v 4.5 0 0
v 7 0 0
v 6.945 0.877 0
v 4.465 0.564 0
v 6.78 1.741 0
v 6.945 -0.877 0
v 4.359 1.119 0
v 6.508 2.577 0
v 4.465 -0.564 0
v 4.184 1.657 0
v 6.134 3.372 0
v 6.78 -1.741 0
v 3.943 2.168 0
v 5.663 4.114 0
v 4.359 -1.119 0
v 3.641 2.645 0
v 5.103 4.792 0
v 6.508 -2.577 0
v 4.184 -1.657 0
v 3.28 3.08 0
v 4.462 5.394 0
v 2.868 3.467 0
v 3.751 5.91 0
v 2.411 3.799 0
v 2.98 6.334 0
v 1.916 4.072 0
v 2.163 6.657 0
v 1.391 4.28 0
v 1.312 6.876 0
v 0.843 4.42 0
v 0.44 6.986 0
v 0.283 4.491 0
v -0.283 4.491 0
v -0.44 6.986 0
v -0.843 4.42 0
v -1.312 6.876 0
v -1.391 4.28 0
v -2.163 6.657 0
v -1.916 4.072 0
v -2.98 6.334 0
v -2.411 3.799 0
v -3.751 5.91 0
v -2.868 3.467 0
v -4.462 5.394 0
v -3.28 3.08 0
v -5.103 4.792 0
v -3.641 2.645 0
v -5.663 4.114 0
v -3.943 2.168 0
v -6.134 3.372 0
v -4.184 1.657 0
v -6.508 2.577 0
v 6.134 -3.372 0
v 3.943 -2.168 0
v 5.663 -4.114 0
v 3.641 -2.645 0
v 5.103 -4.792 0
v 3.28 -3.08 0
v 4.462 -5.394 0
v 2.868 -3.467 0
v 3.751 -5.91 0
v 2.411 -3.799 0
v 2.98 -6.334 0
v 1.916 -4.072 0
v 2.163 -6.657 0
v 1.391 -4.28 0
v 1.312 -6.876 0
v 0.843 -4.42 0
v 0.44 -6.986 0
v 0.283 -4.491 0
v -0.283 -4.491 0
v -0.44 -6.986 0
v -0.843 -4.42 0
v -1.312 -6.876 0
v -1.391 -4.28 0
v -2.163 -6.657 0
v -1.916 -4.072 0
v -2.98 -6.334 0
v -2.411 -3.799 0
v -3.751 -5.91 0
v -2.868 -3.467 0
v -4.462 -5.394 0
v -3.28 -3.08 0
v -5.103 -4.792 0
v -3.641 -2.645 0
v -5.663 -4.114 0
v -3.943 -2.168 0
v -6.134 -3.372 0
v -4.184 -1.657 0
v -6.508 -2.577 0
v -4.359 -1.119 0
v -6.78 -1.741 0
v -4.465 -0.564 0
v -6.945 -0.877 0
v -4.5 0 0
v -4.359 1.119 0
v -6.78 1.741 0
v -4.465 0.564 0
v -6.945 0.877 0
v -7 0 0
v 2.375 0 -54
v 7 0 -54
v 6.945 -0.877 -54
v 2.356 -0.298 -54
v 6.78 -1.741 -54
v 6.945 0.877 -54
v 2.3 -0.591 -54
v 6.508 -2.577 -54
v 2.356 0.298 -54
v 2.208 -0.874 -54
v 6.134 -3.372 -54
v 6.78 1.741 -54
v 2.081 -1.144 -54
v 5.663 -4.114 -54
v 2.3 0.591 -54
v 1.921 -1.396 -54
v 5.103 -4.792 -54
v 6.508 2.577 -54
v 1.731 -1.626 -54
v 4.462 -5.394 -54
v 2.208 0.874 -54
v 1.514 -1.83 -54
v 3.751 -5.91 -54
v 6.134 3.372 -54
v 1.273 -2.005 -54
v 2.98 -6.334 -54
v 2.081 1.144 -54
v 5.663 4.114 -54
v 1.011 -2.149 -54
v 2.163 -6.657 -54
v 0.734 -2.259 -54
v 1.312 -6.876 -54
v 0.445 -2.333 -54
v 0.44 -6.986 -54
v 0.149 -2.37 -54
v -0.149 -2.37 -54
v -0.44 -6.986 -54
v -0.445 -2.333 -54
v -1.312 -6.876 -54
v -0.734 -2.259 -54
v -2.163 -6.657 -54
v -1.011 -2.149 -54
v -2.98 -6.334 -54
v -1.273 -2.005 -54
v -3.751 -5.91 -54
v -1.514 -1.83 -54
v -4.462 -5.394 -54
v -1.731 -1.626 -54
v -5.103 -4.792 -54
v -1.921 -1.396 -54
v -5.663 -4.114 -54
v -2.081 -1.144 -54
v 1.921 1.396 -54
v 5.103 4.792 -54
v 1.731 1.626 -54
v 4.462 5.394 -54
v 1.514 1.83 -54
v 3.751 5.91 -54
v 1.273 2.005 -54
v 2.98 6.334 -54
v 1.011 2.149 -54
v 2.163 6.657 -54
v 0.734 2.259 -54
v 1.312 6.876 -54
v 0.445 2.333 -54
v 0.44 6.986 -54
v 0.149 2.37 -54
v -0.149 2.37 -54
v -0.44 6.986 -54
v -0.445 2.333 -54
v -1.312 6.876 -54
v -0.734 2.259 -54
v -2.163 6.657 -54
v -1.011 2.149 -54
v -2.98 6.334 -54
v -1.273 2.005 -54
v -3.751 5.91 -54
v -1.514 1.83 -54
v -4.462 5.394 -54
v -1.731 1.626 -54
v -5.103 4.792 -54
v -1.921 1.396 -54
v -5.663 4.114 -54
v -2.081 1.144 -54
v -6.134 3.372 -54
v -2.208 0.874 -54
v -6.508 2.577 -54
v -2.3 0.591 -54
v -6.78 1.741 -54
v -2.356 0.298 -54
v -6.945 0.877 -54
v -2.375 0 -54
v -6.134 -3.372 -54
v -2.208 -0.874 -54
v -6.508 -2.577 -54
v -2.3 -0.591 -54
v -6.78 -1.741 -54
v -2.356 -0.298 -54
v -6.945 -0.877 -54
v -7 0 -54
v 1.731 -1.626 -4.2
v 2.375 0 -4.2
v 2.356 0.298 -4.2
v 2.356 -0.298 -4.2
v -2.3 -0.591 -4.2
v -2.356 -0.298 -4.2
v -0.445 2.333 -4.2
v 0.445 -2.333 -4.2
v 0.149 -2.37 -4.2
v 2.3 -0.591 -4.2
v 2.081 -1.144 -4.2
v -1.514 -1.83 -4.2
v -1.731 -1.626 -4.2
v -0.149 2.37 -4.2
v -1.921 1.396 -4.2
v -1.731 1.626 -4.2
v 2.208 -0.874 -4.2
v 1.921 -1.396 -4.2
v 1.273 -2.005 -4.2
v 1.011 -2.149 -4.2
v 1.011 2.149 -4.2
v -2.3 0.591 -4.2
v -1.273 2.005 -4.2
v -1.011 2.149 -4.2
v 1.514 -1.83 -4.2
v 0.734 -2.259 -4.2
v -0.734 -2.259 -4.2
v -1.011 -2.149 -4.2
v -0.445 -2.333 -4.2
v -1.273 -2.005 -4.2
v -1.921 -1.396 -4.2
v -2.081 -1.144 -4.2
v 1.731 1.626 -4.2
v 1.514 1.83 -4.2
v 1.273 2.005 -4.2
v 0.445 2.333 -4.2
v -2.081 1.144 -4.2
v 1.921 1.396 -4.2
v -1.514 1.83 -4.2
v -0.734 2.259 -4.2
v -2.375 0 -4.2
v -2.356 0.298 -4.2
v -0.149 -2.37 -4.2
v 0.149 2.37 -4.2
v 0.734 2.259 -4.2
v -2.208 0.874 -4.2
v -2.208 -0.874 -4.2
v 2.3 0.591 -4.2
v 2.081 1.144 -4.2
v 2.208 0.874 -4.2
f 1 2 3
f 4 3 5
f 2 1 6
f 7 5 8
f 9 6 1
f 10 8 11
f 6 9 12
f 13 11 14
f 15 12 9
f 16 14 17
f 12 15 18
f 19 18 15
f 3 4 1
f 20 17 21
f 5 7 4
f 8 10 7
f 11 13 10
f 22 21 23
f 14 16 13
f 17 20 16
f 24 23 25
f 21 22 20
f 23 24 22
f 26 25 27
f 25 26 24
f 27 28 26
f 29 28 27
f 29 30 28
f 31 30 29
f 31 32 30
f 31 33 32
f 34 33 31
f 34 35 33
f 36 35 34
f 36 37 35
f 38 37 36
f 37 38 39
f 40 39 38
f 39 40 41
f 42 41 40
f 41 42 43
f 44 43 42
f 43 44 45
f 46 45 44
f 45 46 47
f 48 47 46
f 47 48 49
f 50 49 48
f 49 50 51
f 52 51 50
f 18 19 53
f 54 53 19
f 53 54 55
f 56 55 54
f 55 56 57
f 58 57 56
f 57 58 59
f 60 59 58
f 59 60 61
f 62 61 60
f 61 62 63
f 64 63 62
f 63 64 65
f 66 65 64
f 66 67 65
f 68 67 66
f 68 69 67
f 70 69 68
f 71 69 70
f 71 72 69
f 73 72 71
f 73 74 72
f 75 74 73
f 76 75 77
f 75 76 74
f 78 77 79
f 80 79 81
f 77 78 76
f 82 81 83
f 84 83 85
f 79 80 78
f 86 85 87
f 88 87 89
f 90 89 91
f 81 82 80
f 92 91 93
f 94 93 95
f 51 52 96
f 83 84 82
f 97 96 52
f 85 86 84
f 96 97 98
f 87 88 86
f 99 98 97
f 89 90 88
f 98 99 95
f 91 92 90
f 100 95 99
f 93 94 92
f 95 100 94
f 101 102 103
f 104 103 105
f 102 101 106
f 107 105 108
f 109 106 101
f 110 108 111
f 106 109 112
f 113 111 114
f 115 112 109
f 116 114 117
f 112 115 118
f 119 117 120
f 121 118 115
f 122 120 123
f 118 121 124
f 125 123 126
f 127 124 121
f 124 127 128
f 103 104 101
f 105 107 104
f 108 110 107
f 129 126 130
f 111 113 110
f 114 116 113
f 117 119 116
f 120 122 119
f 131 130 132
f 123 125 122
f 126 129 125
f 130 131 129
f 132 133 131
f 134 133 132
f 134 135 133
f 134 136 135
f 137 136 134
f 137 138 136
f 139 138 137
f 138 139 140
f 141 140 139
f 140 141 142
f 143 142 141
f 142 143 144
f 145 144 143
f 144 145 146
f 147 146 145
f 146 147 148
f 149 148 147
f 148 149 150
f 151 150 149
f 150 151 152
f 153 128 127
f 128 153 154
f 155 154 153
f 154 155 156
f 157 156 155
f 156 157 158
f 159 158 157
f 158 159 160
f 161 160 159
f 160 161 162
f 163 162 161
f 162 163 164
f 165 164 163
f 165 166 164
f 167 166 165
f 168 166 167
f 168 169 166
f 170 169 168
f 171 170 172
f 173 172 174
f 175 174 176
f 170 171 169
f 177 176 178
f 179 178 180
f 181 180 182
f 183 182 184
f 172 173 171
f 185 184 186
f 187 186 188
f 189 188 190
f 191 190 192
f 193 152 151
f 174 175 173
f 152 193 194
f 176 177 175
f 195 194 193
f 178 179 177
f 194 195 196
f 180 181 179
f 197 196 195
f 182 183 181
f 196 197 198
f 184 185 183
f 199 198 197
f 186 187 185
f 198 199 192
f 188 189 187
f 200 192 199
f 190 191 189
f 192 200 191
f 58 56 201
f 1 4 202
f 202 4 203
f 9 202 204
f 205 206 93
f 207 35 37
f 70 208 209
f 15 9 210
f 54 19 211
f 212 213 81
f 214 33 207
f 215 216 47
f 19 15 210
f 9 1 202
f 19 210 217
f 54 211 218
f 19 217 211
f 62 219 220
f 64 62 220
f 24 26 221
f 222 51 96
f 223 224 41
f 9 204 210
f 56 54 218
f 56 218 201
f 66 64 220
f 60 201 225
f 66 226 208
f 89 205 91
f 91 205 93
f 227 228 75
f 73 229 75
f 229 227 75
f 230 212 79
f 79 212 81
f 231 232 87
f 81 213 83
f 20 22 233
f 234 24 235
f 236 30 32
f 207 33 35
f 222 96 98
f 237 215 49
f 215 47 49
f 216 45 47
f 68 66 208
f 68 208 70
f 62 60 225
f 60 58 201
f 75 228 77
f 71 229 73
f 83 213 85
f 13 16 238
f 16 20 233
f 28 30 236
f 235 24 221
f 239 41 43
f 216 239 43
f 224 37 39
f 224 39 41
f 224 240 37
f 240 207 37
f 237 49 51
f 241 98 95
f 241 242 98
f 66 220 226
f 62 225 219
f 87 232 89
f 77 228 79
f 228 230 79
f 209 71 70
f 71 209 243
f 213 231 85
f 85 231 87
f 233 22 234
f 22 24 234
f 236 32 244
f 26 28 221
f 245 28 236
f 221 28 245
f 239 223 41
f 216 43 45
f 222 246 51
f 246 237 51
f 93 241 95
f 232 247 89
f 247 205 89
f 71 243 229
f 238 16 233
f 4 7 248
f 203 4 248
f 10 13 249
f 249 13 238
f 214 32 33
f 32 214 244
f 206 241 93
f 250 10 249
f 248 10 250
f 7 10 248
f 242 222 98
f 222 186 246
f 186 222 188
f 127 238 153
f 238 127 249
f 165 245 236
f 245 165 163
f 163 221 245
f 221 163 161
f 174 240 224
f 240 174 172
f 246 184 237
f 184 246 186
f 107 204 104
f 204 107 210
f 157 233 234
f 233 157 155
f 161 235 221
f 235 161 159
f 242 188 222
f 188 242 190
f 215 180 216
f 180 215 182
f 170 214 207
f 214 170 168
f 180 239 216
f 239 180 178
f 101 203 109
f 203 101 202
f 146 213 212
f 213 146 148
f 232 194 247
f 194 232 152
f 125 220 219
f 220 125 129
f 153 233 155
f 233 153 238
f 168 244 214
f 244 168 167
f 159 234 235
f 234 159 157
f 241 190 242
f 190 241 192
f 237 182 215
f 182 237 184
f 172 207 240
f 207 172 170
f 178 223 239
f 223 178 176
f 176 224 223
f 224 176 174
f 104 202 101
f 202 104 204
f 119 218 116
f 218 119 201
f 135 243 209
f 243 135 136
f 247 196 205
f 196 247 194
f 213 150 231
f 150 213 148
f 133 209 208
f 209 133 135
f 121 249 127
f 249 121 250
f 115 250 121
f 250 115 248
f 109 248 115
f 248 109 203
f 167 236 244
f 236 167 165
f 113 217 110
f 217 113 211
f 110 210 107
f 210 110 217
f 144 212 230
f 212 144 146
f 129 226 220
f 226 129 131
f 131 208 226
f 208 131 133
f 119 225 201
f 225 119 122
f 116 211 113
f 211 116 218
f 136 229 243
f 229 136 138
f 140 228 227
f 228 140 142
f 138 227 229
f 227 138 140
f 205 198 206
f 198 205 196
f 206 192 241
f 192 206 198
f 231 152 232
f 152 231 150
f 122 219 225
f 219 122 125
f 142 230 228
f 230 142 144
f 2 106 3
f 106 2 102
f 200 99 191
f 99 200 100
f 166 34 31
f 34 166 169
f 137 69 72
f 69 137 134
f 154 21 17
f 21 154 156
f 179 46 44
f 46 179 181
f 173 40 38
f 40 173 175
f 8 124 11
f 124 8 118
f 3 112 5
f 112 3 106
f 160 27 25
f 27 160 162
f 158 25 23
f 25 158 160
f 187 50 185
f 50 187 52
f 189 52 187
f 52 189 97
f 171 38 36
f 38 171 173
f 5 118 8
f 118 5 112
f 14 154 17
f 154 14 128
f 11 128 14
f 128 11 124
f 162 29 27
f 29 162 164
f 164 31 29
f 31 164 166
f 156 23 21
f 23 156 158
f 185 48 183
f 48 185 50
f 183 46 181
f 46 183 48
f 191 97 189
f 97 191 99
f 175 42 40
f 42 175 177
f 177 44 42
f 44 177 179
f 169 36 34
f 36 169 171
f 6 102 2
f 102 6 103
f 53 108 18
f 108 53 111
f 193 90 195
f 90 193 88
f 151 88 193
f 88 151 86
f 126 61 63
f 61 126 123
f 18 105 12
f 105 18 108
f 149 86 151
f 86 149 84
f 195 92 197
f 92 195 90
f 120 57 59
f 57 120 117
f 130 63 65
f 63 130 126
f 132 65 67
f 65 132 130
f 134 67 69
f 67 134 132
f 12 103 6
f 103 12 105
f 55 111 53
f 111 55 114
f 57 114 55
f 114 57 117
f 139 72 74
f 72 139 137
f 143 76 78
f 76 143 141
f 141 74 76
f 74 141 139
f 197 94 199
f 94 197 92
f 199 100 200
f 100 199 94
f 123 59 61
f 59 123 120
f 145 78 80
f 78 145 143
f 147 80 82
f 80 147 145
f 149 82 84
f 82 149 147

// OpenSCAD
$fn = 50;


difference() {
	union() {
		translate(v = [0, 0, -54.0000000000]) {
			cylinder(h = 54, r = 7.0000000000);
		}
		cylinder(h = 0, r = 17.0000000000);
	}
	union() {
		translate(v = [0, 0, 0]) {
			rotate(a = [0, 0, 0]) {
				difference() {
					union() {
						#translate(v = [0, 0, -54.0000000000]) {
							cylinder(h = 54, r = 2.2500000000);
						}
						#translate(v = [0, 0, -4.2000000000]) {
							cylinder(h = 4.2000000000, r = 7.0000000000, r1 = 2.3750000000, r2 = 4.5000000000);
						}
						#translate(v = [0, 0, -54.0000000000]) {
							cylinder(h = 54, r = 2.3750000000);
						}
						#translate(v = [0, 0, -54.0000000000]) {
							cylinder(h = 54, r = 2.2500000000);
						}
					}
					union();
				}
			}
		}
	}
}
